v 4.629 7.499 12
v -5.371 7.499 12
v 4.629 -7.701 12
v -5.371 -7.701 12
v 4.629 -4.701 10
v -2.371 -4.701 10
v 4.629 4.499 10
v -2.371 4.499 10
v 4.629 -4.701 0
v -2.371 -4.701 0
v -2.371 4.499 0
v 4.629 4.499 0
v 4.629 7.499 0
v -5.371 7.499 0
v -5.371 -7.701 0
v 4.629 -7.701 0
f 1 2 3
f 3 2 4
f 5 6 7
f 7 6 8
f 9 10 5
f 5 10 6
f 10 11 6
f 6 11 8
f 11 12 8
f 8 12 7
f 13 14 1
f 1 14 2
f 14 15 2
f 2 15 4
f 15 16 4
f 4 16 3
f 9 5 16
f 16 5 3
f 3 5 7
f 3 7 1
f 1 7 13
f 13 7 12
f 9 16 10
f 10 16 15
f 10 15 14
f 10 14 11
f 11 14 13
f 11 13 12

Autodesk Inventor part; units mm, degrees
ref_plane "YZ Plane" through (0, 0, 0) normal (1, 0, 0) x (0, 1, 0)
ref_plane "XZ Plane" through (0, 0, 0) normal (0, 1, 0) x (-1, 0, 0)
ref_plane "XY Plane" through (0, 0, 0) normal (0, 0, 1) x (1, 0, 0)
sketch "Эскиз1" plane through (0, 0, 0) normal (0, 0, 1) x (1, 0, 0)
  line L0 (4.6286, 7.4989) -> (-5.3714, 7.4989)
  line L1 (-5.3714, 7.4989) -> (-5.3714, -7.7011)
  line L2 (-5.3714, -7.7011) -> (4.6286, -7.7011)
  line L3 (4.6286, -7.7011) -> (4.6286, -4.7011)
  line L4 (4.6286, -4.7011) -> (-2.3714, -4.7011)
  line L5 (-2.3714, 4.4989) -> (4.6286, 4.4989)
  line L6 (4.6286, 4.4989) -> (4.6286, 7.4989)
  line L7 (-2.3714, 4.4989) -> (-2.3714, -4.7011)
  point P0 (0, 0)
  dimension "d1" = 9.2
  dimension "d2" = 3
  dimension "d3" = 3
  dimension "d4" = 3
  dimension "d7" = 10
extrude "Выдавливание1" add sketch "Эскиз1" along normal blind 10
sketch "Эскиз3" plane through (0, 0, 10) normal (0, 0, 1) x (1, 0, 0)
  line L0 (4.6286, 7.4989) -> (-5.3714, 7.4989) projected
  line L1 (4.6286, -7.7011) -> (4.6286, -4.7011) projected
  line L2 (-5.3714, 7.4989) -> (4.6286, 7.4989)
  line L3 (4.6286, 7.4989) -> (4.6286, -7.7011)
  line L4 (4.6286, -7.7011) -> (-5.3714, -7.7011)
  line L5 (-5.3714, -7.7011) -> (-5.3714, 7.4989)
  point P0 (0, 0)
  point P1 (4.6286, 7.4989)
extrude "Выдавливание3" add sketch "Эскиз3" along normal blind 2
properties part number "ограничитель"
